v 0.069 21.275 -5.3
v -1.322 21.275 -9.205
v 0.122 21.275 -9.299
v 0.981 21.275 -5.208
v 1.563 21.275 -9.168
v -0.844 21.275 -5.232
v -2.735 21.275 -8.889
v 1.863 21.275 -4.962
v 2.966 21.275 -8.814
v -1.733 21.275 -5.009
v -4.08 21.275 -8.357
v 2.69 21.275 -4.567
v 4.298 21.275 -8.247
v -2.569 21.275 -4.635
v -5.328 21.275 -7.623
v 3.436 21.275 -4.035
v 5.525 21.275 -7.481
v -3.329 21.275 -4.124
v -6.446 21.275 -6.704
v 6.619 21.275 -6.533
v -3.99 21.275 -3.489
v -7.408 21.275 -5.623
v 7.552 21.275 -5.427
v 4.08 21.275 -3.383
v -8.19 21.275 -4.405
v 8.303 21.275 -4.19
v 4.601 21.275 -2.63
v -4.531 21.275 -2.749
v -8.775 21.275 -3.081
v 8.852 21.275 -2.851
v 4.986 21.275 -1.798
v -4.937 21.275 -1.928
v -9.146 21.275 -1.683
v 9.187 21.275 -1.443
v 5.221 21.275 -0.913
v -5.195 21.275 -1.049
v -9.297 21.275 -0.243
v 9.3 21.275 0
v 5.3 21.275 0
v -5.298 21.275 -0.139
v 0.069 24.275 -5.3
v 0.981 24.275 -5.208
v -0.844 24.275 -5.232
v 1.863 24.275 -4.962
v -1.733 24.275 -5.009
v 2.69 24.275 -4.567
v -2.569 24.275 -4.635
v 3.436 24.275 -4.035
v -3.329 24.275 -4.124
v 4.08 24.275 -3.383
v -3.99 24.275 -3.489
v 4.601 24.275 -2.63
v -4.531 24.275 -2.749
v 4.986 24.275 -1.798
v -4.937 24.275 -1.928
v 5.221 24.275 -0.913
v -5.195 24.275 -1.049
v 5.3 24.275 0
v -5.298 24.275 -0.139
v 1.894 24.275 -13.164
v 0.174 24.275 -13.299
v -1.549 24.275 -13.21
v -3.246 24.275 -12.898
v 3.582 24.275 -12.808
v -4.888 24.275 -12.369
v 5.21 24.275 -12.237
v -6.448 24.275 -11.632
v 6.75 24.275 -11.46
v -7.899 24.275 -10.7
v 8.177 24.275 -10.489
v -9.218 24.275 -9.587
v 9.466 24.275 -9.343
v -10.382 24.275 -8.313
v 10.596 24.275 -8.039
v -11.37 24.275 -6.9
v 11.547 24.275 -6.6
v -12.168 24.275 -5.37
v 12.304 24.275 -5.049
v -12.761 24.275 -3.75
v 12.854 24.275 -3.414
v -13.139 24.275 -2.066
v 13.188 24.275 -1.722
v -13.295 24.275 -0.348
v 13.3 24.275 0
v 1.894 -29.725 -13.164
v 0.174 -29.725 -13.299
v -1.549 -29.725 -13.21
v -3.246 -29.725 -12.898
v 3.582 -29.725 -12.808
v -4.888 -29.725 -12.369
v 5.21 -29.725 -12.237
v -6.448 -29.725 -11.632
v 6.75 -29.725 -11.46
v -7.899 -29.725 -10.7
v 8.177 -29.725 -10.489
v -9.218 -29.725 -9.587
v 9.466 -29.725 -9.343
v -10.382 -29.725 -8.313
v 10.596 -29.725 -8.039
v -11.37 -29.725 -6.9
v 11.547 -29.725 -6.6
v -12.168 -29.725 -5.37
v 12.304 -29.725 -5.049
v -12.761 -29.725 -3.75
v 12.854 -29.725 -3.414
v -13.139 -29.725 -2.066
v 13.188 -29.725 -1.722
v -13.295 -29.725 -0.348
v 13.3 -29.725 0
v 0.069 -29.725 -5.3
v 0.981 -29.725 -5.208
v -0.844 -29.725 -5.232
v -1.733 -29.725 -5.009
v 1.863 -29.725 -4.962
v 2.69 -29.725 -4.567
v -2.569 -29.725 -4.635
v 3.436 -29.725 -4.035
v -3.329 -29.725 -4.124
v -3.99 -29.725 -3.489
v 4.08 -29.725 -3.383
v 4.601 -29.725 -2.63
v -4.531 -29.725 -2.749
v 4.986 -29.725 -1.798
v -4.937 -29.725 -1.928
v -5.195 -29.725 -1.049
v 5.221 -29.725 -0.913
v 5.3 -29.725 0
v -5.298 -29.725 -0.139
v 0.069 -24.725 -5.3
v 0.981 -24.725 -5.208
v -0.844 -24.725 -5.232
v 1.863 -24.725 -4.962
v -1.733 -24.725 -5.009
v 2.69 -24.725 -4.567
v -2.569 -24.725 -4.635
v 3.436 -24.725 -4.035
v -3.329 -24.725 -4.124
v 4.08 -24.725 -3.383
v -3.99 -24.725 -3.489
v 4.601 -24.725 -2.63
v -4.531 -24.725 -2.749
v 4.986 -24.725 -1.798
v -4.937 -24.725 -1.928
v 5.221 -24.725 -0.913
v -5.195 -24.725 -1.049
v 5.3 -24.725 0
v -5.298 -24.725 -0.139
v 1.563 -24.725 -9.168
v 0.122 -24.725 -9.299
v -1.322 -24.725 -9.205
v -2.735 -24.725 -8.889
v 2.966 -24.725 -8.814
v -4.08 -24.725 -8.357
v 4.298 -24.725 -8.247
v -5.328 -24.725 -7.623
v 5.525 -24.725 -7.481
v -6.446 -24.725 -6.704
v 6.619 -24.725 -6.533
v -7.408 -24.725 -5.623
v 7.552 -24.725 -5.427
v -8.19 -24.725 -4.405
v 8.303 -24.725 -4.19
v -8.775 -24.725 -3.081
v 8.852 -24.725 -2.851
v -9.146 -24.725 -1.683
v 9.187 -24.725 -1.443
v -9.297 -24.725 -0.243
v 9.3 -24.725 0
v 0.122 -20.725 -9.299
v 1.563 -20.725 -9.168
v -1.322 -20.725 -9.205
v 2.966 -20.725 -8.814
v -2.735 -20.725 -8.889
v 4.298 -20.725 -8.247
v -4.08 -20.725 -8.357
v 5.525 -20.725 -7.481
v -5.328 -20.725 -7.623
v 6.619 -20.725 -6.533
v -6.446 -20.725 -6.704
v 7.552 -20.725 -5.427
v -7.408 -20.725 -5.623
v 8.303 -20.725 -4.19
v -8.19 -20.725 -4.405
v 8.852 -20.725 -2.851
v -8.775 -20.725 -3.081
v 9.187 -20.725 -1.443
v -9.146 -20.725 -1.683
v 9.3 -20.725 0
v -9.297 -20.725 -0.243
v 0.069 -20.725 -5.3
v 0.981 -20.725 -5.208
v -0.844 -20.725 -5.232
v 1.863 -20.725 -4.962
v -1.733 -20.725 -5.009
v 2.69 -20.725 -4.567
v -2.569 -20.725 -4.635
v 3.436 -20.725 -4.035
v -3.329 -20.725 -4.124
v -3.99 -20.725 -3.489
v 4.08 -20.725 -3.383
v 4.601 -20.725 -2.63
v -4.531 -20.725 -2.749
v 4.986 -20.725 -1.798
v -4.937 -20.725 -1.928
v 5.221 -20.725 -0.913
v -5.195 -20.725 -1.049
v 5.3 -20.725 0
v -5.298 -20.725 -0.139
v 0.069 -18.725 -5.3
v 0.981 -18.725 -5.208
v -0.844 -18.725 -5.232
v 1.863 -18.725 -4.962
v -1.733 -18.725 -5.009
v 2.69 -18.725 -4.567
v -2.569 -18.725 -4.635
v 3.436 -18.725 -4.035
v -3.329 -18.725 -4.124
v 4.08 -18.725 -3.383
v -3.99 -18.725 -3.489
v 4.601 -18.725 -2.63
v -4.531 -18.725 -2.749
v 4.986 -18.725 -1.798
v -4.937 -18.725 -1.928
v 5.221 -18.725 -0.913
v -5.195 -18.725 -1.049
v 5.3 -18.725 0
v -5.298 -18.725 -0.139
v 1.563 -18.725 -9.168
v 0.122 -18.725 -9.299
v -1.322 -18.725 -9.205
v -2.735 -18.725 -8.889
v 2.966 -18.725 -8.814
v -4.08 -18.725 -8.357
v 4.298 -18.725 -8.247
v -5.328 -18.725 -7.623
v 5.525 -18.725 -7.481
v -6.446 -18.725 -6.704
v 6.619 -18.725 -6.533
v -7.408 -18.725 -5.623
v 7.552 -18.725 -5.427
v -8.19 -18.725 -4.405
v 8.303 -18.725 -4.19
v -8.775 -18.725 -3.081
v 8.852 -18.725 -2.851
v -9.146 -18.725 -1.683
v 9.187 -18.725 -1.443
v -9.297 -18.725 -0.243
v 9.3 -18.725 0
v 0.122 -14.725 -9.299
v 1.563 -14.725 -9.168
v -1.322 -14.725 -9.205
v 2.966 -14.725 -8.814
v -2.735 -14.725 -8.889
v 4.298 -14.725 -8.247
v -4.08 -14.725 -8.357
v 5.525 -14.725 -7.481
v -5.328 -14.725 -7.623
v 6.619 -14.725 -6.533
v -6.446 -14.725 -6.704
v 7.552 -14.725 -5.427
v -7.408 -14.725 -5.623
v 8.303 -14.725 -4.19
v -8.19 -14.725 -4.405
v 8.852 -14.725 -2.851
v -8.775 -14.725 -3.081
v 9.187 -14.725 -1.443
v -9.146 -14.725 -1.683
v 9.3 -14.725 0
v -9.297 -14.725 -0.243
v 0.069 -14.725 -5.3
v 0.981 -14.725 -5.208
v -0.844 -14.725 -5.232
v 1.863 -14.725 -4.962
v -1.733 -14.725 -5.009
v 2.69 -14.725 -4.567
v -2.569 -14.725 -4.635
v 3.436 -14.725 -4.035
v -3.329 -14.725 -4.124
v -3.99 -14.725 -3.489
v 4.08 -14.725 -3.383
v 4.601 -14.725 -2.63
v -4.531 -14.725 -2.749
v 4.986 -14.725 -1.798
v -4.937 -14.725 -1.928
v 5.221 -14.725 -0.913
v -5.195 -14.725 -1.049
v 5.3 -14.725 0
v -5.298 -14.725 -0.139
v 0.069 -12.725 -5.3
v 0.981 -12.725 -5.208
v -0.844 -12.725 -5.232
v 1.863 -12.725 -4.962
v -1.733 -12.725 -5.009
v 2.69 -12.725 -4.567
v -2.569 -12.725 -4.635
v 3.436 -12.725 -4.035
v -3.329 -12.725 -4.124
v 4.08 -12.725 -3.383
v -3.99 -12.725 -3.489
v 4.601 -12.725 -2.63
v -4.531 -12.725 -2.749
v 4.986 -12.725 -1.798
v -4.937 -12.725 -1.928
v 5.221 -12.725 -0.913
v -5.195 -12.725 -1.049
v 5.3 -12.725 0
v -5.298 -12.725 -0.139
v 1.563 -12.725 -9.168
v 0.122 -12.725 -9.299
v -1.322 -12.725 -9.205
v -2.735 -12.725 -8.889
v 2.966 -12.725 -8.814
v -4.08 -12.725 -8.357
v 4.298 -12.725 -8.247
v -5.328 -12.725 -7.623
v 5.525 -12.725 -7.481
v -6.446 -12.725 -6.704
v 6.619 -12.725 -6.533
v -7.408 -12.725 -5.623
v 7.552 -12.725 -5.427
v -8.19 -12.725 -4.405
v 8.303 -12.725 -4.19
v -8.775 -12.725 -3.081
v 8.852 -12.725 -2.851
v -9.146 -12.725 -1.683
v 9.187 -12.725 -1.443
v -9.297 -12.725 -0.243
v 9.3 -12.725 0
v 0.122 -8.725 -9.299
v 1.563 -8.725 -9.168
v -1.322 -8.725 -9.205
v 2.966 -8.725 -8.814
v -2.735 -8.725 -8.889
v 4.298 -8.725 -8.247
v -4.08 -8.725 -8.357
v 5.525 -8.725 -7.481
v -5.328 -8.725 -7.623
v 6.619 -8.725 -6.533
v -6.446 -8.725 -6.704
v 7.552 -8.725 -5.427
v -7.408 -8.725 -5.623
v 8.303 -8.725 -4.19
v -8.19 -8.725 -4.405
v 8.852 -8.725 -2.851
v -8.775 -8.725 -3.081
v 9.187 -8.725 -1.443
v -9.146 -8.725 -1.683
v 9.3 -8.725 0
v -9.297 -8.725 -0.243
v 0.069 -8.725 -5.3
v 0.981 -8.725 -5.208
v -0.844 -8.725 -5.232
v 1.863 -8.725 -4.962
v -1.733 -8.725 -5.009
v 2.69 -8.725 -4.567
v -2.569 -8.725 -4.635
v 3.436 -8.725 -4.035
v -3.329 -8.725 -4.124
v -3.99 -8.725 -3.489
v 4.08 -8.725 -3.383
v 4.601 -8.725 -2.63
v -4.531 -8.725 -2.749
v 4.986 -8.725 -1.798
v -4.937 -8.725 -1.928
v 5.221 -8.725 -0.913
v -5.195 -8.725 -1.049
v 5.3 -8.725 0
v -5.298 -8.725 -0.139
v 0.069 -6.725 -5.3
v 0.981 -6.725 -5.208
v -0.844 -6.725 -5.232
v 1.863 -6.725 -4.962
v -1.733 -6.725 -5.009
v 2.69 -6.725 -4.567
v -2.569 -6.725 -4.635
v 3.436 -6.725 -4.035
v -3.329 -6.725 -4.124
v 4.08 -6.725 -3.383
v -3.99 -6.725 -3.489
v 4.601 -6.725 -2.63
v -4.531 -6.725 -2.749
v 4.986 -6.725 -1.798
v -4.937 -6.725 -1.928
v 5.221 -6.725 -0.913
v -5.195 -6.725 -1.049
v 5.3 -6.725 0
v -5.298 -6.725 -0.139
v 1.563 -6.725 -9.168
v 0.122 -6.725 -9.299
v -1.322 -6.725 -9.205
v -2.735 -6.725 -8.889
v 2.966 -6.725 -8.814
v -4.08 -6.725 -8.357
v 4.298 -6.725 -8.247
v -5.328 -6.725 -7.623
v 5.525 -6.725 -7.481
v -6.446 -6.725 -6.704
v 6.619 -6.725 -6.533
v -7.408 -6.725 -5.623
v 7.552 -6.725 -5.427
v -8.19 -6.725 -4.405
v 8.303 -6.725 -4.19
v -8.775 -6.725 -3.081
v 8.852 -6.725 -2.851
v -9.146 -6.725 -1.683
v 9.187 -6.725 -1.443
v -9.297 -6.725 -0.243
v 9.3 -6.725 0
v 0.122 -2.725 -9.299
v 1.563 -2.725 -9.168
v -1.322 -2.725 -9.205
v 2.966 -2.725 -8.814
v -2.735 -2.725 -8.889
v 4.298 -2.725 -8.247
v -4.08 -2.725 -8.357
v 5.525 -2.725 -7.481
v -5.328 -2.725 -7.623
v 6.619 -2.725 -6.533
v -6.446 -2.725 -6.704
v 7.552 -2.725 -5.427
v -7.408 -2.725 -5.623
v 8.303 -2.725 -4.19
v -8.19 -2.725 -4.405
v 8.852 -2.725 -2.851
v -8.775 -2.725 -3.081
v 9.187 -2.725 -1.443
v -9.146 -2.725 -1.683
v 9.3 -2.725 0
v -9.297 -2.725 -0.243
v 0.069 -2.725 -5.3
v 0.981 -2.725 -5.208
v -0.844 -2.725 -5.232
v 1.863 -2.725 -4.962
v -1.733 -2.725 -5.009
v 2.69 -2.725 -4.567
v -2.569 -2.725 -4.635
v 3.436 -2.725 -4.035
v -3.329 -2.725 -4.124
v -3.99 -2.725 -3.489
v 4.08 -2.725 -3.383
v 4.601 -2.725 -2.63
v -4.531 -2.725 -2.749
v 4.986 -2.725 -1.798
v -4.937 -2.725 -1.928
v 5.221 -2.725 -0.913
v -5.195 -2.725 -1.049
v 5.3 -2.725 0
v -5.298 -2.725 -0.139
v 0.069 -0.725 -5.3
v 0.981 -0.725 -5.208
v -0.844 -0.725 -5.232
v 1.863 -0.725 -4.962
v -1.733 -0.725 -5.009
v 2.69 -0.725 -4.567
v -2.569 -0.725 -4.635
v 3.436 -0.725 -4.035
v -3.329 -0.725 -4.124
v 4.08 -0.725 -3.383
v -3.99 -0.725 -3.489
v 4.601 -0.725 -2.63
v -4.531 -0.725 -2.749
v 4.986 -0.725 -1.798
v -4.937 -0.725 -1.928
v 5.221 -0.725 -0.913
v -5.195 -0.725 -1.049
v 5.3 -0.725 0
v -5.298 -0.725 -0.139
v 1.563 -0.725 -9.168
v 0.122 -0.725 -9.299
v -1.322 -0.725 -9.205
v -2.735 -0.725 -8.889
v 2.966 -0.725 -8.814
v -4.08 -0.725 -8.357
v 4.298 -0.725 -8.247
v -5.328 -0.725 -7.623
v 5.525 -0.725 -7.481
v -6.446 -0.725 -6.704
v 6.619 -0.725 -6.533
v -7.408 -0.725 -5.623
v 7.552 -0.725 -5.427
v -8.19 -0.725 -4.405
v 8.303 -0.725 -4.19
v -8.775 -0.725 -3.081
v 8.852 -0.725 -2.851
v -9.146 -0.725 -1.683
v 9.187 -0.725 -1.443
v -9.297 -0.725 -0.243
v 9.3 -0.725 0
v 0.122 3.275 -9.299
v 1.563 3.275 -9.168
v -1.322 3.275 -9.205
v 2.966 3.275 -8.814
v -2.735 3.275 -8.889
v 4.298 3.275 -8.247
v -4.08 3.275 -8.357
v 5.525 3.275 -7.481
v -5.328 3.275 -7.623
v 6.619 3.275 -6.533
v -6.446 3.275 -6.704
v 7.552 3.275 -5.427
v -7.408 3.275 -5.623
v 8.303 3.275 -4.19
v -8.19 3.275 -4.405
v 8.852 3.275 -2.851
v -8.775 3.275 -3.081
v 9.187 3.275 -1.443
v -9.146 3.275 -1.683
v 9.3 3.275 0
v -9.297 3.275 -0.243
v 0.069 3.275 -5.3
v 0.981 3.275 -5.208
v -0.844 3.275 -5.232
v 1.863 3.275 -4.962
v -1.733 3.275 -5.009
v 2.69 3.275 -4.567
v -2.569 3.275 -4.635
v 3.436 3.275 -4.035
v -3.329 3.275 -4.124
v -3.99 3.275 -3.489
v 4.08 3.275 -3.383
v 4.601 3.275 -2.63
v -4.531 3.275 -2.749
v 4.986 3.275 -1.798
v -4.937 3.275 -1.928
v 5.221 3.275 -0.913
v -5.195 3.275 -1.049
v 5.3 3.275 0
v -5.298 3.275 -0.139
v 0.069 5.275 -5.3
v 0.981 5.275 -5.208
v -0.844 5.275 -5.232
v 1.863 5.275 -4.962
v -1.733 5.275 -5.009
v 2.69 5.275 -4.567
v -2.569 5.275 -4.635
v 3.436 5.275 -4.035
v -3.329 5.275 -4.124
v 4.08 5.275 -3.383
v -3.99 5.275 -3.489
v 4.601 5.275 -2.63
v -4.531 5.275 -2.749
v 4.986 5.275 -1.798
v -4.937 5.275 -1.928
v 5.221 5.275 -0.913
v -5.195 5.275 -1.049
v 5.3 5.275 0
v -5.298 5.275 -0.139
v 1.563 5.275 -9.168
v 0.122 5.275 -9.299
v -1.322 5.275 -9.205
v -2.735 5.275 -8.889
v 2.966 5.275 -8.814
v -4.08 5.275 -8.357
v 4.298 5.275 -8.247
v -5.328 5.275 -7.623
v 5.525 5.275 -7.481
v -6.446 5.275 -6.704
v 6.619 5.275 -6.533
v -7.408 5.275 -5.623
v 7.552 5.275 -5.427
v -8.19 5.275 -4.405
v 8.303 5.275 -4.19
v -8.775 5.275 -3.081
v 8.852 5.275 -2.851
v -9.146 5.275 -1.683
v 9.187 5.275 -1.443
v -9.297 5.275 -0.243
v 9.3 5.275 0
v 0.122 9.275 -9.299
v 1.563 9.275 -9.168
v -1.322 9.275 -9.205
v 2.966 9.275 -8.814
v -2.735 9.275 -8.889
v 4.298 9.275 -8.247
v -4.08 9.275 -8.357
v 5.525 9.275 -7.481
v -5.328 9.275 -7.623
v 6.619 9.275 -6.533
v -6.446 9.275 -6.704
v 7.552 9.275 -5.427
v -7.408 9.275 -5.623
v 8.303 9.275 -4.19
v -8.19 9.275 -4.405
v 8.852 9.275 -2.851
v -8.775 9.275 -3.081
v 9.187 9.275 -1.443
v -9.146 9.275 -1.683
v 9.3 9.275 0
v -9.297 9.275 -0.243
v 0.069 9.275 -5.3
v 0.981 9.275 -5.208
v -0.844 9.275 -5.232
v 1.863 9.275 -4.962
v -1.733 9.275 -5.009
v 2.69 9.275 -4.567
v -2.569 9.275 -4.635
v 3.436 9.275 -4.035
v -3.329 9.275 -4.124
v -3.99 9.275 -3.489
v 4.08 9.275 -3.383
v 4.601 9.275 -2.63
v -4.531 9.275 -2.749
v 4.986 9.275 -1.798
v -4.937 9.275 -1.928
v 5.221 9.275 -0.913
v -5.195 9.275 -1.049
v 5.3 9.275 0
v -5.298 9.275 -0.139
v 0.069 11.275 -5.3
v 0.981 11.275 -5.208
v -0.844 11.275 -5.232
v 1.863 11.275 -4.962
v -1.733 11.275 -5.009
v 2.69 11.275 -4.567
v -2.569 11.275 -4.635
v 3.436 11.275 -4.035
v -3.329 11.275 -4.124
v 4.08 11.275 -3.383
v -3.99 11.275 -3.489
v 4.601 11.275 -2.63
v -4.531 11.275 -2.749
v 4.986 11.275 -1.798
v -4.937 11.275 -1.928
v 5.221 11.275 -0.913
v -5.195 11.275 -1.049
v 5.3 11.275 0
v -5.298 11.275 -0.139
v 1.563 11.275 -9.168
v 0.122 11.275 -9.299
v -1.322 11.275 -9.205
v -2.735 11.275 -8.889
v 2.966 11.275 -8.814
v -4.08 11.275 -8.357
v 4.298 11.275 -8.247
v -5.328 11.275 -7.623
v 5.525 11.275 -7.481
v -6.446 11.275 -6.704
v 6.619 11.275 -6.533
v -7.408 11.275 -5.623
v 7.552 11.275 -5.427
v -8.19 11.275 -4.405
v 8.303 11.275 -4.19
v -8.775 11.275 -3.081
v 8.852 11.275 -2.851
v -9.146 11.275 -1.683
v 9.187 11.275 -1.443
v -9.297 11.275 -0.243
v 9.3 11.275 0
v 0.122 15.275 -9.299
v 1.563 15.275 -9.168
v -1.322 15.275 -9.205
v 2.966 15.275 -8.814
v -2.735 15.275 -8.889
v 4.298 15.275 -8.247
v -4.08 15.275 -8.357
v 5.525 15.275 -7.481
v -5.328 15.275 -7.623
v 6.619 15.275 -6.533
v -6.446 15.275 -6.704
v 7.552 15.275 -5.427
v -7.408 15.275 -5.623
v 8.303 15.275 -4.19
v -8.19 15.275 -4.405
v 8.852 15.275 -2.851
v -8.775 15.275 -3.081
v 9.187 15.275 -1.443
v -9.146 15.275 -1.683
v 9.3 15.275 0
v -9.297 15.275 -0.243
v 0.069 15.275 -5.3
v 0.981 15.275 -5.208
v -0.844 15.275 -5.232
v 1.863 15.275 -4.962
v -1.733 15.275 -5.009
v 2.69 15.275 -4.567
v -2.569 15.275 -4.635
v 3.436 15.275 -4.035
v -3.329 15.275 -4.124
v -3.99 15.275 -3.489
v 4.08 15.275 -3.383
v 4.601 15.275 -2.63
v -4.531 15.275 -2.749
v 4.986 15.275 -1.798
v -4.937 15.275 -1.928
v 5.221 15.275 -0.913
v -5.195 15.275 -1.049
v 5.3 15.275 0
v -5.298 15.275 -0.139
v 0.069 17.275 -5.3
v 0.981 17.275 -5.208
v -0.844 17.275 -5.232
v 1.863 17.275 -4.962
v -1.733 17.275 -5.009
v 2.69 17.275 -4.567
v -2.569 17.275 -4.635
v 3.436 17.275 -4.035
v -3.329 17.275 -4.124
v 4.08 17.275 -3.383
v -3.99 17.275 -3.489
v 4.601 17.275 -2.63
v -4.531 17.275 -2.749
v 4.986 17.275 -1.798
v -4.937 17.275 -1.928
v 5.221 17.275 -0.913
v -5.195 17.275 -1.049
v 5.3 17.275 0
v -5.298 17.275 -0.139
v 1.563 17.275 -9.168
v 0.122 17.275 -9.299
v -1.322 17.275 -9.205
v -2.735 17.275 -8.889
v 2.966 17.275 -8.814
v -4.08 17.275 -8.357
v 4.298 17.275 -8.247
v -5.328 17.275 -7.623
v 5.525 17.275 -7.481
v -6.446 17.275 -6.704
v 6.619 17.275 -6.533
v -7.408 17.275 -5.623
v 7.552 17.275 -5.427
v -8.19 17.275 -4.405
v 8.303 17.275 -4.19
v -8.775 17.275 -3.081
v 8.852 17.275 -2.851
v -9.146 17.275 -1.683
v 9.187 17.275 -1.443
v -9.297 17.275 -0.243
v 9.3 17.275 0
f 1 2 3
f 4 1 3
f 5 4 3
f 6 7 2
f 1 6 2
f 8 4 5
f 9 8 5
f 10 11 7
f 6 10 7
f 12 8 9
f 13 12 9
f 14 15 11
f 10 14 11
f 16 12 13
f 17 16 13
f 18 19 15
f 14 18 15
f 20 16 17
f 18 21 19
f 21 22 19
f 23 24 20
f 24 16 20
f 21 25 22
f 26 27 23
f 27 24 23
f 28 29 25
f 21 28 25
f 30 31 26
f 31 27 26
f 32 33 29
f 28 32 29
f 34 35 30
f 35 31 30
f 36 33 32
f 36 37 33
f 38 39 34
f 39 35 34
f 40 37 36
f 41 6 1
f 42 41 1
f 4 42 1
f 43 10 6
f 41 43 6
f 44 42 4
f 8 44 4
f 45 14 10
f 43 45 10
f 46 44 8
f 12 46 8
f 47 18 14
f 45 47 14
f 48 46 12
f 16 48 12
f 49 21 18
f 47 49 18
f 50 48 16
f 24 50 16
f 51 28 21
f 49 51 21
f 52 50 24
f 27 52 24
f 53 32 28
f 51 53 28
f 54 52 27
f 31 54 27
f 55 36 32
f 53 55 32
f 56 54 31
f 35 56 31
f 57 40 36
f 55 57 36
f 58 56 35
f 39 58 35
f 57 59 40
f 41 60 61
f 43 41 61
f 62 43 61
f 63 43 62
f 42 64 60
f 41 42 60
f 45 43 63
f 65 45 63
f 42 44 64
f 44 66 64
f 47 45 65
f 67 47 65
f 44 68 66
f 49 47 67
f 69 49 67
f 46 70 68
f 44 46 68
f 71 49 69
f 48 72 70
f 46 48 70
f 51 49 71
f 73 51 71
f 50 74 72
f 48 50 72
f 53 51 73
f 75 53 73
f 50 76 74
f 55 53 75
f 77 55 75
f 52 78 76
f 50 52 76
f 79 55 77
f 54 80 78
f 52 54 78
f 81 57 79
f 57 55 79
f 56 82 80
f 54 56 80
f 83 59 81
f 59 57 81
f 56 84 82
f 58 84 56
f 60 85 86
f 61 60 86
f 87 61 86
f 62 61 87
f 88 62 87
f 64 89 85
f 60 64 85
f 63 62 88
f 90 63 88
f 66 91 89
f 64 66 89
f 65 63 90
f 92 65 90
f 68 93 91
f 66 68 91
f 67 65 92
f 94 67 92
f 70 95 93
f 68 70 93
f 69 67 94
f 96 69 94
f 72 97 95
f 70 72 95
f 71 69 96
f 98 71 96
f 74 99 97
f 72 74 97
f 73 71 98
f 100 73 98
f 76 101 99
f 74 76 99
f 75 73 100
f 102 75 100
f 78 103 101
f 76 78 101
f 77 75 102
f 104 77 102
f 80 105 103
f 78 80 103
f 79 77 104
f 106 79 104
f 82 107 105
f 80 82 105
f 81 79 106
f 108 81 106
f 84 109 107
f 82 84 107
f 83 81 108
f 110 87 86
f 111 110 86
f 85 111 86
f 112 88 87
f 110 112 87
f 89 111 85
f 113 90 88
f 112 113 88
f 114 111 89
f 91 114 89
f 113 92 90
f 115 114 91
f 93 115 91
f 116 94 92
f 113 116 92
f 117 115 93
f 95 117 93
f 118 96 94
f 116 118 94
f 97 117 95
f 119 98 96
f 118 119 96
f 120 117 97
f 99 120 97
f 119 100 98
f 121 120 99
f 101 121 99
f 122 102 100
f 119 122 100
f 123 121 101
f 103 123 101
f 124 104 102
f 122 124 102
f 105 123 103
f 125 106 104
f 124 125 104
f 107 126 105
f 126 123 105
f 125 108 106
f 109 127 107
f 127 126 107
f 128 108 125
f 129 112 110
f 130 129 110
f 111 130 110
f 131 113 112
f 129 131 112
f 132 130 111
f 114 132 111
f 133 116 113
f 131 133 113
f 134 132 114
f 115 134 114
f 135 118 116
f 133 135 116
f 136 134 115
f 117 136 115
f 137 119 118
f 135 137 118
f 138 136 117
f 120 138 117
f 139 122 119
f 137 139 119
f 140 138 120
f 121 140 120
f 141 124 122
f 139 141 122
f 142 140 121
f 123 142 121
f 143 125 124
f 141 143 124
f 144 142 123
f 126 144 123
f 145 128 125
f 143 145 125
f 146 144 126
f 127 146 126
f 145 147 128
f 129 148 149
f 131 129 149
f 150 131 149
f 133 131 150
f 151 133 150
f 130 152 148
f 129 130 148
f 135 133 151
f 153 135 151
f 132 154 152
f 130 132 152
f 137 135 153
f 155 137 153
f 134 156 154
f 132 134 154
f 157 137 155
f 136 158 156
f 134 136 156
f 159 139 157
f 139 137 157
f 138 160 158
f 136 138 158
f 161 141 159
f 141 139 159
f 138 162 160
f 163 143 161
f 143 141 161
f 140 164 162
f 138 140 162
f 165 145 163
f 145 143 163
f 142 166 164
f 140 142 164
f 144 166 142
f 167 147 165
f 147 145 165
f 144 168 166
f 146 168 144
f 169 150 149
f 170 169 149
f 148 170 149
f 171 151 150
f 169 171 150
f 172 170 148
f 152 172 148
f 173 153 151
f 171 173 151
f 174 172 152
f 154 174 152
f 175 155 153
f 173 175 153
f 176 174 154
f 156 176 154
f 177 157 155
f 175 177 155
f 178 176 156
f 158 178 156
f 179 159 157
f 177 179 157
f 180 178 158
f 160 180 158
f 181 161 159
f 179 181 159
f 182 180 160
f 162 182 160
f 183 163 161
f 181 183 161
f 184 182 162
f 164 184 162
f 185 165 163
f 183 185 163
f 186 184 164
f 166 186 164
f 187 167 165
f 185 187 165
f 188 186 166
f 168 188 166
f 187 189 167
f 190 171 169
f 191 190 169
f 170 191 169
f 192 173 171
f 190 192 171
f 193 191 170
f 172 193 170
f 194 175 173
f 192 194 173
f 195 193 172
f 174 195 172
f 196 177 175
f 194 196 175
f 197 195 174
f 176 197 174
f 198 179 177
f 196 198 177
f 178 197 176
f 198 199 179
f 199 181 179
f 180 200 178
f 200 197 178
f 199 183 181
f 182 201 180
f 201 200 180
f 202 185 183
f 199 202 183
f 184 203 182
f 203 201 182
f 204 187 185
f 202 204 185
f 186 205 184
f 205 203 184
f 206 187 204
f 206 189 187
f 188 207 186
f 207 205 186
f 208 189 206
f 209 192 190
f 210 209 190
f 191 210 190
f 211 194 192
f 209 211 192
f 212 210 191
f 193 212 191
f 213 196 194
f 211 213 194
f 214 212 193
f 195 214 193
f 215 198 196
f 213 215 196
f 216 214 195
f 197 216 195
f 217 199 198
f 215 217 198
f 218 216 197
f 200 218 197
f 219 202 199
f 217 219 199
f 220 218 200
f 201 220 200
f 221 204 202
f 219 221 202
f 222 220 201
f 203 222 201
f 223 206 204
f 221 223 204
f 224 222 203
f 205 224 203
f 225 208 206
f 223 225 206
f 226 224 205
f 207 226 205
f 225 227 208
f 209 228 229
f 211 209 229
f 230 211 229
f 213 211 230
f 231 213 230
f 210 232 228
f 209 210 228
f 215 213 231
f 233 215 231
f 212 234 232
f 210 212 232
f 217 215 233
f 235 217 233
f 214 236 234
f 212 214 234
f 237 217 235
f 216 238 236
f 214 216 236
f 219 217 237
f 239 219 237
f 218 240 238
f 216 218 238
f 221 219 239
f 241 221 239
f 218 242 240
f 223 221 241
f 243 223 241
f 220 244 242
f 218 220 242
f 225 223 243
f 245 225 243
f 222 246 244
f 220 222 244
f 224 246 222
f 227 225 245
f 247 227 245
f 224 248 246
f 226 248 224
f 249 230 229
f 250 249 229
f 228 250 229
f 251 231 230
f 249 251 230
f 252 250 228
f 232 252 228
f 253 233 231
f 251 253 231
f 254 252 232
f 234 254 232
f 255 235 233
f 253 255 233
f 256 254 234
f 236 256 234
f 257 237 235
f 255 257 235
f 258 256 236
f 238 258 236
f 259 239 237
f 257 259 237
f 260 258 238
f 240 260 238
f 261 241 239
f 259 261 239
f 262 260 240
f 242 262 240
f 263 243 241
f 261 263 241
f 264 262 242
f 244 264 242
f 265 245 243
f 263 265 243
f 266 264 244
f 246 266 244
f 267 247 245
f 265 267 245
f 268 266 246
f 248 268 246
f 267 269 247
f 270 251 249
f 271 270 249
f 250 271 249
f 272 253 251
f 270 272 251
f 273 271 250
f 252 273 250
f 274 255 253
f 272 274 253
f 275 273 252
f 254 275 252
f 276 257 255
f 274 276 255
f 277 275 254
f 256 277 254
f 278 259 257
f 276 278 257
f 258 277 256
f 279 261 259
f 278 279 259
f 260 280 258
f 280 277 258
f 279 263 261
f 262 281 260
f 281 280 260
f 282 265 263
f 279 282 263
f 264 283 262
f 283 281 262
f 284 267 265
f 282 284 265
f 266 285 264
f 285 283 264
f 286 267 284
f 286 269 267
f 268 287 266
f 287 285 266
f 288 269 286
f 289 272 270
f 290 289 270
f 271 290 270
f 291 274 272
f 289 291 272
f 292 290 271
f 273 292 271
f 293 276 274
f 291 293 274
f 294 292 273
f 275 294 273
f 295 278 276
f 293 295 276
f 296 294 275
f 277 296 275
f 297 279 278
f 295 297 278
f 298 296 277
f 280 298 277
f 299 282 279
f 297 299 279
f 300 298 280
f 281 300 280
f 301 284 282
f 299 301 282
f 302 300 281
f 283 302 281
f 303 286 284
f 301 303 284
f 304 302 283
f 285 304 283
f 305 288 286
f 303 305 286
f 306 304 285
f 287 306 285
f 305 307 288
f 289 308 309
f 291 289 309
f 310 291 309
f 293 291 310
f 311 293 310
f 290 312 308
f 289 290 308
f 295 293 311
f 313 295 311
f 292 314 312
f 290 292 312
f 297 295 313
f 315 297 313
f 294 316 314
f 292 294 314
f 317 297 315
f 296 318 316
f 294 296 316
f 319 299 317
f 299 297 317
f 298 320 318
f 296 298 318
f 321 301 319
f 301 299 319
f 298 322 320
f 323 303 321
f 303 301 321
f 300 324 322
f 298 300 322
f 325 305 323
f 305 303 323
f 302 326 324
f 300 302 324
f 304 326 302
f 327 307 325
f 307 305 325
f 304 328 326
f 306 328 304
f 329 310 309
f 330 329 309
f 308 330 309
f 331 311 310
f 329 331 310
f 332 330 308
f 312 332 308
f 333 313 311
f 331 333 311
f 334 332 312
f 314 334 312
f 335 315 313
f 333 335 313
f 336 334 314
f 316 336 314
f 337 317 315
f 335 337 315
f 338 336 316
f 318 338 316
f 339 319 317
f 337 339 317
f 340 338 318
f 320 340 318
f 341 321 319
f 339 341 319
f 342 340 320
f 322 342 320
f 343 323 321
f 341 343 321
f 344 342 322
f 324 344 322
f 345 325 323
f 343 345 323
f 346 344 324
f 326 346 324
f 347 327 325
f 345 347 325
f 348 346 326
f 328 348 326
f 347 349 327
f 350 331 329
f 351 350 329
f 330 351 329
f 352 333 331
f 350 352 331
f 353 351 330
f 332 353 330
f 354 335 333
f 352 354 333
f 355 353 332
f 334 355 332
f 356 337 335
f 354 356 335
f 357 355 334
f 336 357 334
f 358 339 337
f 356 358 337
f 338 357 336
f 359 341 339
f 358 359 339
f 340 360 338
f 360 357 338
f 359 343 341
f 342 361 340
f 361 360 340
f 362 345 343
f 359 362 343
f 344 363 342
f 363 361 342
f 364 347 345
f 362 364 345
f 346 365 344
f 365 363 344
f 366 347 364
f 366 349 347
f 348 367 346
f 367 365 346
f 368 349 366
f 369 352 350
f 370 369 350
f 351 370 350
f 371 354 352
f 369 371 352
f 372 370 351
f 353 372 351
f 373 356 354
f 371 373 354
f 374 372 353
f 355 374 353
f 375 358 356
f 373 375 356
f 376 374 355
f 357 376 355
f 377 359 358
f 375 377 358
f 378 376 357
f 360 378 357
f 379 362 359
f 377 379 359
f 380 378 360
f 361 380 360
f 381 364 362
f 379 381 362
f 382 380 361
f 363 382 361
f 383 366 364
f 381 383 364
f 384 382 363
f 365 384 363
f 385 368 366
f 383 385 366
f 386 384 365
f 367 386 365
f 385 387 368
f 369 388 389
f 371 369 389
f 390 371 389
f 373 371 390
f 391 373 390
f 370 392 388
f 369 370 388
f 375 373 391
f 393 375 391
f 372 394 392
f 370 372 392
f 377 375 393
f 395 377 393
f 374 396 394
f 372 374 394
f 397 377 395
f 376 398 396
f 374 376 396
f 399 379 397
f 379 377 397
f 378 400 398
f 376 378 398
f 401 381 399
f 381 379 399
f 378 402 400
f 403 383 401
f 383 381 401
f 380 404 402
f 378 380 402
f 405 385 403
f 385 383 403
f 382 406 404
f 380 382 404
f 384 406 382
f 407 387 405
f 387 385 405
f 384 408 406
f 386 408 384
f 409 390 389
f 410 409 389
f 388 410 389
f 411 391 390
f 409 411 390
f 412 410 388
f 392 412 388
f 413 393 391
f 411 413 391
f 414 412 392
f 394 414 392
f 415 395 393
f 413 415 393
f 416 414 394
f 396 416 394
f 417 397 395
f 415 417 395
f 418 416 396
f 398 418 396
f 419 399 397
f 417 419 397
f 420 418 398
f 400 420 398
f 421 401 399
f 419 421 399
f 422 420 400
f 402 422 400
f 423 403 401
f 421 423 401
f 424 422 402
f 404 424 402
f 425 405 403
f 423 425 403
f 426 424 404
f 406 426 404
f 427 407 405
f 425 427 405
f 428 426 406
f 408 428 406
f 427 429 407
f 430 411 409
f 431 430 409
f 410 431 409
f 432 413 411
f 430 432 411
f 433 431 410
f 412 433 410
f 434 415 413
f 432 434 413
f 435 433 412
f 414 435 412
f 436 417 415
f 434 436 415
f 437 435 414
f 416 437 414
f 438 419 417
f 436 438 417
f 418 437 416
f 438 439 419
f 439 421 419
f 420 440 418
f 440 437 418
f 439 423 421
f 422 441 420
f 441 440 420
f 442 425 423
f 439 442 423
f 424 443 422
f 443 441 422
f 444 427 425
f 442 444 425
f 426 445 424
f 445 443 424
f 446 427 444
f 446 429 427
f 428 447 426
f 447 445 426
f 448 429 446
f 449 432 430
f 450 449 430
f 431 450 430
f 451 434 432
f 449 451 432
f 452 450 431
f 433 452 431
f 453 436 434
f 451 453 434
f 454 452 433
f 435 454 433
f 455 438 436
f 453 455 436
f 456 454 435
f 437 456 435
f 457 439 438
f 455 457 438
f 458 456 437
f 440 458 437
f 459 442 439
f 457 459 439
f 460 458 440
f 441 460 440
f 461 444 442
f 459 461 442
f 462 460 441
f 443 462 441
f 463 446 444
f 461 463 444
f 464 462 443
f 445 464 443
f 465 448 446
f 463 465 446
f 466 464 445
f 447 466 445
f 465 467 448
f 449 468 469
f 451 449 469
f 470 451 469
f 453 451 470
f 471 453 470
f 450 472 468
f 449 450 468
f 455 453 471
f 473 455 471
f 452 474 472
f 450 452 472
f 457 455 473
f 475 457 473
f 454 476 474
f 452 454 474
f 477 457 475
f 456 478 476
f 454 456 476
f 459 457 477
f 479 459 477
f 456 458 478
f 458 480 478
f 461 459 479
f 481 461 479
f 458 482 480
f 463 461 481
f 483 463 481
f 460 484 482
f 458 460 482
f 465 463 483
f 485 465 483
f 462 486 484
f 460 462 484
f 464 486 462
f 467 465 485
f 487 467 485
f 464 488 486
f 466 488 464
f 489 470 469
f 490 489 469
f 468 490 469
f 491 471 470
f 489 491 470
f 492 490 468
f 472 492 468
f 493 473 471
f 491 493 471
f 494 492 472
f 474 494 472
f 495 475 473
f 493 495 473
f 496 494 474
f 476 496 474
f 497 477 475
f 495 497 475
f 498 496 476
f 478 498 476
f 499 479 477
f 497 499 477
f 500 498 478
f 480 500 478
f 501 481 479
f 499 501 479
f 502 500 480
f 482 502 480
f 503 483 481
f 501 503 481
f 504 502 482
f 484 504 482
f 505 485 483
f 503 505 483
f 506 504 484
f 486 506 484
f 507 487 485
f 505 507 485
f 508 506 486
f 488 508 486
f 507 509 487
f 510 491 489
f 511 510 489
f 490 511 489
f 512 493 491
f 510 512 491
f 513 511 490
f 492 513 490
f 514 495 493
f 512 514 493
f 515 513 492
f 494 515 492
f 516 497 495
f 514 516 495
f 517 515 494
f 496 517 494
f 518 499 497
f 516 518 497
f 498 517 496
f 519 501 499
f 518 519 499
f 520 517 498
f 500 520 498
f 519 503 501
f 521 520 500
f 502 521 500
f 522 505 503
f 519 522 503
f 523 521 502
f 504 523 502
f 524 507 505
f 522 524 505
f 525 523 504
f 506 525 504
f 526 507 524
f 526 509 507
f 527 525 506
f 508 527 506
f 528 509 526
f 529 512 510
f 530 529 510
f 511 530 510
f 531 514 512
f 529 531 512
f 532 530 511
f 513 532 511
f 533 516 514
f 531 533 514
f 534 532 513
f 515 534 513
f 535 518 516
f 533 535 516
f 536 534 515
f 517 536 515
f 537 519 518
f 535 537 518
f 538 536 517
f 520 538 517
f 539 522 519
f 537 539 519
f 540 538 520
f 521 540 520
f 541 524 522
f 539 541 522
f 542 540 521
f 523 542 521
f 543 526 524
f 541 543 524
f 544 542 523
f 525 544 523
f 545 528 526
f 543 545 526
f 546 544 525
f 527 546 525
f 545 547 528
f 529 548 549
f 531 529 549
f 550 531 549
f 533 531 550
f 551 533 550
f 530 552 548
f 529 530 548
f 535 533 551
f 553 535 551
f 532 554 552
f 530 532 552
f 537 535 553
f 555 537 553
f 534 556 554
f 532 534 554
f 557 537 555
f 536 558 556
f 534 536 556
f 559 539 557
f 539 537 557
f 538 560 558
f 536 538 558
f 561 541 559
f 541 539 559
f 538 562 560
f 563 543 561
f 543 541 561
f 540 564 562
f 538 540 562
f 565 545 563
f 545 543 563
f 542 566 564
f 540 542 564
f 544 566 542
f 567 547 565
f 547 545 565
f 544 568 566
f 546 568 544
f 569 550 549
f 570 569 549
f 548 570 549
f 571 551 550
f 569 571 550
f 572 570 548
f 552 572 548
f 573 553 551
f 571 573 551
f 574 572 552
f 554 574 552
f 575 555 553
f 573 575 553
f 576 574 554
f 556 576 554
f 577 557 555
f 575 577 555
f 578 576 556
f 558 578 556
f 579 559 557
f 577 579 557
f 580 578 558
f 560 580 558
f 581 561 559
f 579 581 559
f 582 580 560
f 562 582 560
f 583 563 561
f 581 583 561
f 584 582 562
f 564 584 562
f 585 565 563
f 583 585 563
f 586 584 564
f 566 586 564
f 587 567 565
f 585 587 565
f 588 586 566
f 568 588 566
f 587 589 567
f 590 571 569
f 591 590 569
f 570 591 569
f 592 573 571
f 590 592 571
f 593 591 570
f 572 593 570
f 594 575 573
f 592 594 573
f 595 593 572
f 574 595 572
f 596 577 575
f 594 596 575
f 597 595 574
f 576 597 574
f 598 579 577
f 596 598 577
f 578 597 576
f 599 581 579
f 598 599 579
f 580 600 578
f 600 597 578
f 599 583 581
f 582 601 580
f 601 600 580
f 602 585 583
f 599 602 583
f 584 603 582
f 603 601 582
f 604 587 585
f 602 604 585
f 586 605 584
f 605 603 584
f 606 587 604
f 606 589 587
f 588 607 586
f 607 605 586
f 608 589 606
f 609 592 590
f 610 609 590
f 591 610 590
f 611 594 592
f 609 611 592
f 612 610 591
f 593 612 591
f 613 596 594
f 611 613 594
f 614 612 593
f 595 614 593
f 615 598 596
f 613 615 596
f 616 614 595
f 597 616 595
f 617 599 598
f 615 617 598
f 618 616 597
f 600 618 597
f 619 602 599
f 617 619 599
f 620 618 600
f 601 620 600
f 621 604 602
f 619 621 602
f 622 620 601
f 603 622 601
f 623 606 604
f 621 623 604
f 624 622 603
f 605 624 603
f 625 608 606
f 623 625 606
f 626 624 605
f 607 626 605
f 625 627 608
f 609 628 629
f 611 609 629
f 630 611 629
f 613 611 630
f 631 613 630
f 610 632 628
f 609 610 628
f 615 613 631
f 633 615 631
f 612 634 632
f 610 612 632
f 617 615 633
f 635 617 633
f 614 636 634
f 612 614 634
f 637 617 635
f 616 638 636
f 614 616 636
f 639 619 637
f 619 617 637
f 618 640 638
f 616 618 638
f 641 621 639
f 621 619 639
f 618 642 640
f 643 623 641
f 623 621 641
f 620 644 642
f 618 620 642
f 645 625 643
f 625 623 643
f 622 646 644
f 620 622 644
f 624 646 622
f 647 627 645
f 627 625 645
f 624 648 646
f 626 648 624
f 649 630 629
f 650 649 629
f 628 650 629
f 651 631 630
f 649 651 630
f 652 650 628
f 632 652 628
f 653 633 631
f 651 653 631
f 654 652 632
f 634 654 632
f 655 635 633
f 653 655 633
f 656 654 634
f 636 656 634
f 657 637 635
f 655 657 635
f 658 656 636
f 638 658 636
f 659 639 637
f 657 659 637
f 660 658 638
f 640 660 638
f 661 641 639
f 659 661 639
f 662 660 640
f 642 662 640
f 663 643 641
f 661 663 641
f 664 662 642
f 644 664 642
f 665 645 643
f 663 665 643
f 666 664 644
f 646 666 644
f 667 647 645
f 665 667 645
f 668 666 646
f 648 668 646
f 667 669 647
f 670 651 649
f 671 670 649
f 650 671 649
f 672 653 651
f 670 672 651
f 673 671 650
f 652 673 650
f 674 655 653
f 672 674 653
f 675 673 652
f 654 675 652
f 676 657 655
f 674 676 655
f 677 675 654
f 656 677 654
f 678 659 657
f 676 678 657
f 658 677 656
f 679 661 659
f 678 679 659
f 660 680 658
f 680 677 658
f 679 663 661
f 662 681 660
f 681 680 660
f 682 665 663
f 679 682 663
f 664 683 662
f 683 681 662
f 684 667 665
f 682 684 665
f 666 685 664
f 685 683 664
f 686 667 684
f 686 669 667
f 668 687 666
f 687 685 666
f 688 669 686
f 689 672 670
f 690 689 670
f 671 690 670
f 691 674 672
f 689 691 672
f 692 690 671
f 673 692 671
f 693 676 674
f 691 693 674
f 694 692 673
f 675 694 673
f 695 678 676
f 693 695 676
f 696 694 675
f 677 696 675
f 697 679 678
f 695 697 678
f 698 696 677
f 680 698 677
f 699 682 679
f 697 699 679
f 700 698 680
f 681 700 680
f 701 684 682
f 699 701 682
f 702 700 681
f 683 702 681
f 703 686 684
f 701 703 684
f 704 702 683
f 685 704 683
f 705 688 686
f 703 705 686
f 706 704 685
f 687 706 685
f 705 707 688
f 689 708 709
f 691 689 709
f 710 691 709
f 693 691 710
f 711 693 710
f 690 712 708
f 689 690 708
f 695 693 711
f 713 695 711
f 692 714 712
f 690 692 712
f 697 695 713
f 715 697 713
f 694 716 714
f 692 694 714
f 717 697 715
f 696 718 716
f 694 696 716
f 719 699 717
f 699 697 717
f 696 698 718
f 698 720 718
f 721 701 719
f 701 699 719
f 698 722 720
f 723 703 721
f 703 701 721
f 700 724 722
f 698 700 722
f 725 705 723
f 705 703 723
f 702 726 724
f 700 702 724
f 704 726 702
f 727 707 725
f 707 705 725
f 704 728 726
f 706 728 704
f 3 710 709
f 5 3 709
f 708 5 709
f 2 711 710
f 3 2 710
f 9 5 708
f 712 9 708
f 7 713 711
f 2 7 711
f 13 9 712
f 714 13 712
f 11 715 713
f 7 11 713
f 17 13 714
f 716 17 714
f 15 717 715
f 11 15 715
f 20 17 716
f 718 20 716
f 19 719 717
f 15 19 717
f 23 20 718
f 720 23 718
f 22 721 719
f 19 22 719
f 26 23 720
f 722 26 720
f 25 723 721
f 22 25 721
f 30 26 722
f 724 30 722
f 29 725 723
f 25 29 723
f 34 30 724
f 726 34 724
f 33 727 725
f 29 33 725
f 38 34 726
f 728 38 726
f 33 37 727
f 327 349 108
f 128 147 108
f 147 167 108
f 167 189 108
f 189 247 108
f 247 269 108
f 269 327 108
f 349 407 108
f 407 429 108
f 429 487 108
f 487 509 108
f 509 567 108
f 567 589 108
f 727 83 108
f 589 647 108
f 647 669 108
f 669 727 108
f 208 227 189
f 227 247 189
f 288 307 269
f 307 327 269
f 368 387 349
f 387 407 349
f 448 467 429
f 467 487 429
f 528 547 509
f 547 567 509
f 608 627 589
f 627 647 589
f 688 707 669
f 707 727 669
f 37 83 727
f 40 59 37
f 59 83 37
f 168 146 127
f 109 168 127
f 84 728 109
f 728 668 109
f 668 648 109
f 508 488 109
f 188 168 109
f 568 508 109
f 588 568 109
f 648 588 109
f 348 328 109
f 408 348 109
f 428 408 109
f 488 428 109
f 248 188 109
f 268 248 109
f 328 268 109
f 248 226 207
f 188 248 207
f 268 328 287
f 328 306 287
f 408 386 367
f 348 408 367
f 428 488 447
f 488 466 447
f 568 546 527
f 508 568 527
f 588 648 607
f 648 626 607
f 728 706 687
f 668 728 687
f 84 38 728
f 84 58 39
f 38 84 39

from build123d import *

# Parameters (mm, degrees)
REVOLVE1_ANGLE = 178.5


with BuildPart() as part:
    # Sketch1 → Revolve1 (revolve)
    with BuildSketch(Plane.XY):
        Polygon((5.3, 21.274776409), (5.3, 24.274776409), (13.3, 24.274776409), (13.3, -29.725223591), (5.3, -29.725223591), (5.3, -26.725223591), (5.3, -24.725223591), (9.3, -24.725223591), (9.3, -20.725223591), (5.3, -20.725223591), (5.3, -18.725223591), (9.3, -18.725223591), (9.3, -14.725223591), (5.3, -14.725223591), (5.3, -12.725223591), (9.3, -12.725223591), (9.3, -8.725223591), (5.3, -8.725223591), (5.3, -6.725223591), (9.3, -6.725223591), (9.3, -2.725223591), (5.3, -2.725223591), (5.3, -0.725223591), (9.3, -0.725223591), (9.3, 3.274776409), (5.3, 3.274776409), (5.3, 5.274776409), (9.3, 5.274776409), (9.3, 9.274776409), (5.3, 9.274776409), (5.3, 11.274776409), (9.3, 11.274776409), (9.3, 15.274776409), (5.3, 15.274776409), (5.3, 17.274776409), (9.3, 17.274776409), (9.3, 21.274776409), align=None)
    revolve(axis=Axis((0, -24, 0), (0, 1, 0)), revolution_arc=REVOLVE1_ANGLE)


solid = part.part
